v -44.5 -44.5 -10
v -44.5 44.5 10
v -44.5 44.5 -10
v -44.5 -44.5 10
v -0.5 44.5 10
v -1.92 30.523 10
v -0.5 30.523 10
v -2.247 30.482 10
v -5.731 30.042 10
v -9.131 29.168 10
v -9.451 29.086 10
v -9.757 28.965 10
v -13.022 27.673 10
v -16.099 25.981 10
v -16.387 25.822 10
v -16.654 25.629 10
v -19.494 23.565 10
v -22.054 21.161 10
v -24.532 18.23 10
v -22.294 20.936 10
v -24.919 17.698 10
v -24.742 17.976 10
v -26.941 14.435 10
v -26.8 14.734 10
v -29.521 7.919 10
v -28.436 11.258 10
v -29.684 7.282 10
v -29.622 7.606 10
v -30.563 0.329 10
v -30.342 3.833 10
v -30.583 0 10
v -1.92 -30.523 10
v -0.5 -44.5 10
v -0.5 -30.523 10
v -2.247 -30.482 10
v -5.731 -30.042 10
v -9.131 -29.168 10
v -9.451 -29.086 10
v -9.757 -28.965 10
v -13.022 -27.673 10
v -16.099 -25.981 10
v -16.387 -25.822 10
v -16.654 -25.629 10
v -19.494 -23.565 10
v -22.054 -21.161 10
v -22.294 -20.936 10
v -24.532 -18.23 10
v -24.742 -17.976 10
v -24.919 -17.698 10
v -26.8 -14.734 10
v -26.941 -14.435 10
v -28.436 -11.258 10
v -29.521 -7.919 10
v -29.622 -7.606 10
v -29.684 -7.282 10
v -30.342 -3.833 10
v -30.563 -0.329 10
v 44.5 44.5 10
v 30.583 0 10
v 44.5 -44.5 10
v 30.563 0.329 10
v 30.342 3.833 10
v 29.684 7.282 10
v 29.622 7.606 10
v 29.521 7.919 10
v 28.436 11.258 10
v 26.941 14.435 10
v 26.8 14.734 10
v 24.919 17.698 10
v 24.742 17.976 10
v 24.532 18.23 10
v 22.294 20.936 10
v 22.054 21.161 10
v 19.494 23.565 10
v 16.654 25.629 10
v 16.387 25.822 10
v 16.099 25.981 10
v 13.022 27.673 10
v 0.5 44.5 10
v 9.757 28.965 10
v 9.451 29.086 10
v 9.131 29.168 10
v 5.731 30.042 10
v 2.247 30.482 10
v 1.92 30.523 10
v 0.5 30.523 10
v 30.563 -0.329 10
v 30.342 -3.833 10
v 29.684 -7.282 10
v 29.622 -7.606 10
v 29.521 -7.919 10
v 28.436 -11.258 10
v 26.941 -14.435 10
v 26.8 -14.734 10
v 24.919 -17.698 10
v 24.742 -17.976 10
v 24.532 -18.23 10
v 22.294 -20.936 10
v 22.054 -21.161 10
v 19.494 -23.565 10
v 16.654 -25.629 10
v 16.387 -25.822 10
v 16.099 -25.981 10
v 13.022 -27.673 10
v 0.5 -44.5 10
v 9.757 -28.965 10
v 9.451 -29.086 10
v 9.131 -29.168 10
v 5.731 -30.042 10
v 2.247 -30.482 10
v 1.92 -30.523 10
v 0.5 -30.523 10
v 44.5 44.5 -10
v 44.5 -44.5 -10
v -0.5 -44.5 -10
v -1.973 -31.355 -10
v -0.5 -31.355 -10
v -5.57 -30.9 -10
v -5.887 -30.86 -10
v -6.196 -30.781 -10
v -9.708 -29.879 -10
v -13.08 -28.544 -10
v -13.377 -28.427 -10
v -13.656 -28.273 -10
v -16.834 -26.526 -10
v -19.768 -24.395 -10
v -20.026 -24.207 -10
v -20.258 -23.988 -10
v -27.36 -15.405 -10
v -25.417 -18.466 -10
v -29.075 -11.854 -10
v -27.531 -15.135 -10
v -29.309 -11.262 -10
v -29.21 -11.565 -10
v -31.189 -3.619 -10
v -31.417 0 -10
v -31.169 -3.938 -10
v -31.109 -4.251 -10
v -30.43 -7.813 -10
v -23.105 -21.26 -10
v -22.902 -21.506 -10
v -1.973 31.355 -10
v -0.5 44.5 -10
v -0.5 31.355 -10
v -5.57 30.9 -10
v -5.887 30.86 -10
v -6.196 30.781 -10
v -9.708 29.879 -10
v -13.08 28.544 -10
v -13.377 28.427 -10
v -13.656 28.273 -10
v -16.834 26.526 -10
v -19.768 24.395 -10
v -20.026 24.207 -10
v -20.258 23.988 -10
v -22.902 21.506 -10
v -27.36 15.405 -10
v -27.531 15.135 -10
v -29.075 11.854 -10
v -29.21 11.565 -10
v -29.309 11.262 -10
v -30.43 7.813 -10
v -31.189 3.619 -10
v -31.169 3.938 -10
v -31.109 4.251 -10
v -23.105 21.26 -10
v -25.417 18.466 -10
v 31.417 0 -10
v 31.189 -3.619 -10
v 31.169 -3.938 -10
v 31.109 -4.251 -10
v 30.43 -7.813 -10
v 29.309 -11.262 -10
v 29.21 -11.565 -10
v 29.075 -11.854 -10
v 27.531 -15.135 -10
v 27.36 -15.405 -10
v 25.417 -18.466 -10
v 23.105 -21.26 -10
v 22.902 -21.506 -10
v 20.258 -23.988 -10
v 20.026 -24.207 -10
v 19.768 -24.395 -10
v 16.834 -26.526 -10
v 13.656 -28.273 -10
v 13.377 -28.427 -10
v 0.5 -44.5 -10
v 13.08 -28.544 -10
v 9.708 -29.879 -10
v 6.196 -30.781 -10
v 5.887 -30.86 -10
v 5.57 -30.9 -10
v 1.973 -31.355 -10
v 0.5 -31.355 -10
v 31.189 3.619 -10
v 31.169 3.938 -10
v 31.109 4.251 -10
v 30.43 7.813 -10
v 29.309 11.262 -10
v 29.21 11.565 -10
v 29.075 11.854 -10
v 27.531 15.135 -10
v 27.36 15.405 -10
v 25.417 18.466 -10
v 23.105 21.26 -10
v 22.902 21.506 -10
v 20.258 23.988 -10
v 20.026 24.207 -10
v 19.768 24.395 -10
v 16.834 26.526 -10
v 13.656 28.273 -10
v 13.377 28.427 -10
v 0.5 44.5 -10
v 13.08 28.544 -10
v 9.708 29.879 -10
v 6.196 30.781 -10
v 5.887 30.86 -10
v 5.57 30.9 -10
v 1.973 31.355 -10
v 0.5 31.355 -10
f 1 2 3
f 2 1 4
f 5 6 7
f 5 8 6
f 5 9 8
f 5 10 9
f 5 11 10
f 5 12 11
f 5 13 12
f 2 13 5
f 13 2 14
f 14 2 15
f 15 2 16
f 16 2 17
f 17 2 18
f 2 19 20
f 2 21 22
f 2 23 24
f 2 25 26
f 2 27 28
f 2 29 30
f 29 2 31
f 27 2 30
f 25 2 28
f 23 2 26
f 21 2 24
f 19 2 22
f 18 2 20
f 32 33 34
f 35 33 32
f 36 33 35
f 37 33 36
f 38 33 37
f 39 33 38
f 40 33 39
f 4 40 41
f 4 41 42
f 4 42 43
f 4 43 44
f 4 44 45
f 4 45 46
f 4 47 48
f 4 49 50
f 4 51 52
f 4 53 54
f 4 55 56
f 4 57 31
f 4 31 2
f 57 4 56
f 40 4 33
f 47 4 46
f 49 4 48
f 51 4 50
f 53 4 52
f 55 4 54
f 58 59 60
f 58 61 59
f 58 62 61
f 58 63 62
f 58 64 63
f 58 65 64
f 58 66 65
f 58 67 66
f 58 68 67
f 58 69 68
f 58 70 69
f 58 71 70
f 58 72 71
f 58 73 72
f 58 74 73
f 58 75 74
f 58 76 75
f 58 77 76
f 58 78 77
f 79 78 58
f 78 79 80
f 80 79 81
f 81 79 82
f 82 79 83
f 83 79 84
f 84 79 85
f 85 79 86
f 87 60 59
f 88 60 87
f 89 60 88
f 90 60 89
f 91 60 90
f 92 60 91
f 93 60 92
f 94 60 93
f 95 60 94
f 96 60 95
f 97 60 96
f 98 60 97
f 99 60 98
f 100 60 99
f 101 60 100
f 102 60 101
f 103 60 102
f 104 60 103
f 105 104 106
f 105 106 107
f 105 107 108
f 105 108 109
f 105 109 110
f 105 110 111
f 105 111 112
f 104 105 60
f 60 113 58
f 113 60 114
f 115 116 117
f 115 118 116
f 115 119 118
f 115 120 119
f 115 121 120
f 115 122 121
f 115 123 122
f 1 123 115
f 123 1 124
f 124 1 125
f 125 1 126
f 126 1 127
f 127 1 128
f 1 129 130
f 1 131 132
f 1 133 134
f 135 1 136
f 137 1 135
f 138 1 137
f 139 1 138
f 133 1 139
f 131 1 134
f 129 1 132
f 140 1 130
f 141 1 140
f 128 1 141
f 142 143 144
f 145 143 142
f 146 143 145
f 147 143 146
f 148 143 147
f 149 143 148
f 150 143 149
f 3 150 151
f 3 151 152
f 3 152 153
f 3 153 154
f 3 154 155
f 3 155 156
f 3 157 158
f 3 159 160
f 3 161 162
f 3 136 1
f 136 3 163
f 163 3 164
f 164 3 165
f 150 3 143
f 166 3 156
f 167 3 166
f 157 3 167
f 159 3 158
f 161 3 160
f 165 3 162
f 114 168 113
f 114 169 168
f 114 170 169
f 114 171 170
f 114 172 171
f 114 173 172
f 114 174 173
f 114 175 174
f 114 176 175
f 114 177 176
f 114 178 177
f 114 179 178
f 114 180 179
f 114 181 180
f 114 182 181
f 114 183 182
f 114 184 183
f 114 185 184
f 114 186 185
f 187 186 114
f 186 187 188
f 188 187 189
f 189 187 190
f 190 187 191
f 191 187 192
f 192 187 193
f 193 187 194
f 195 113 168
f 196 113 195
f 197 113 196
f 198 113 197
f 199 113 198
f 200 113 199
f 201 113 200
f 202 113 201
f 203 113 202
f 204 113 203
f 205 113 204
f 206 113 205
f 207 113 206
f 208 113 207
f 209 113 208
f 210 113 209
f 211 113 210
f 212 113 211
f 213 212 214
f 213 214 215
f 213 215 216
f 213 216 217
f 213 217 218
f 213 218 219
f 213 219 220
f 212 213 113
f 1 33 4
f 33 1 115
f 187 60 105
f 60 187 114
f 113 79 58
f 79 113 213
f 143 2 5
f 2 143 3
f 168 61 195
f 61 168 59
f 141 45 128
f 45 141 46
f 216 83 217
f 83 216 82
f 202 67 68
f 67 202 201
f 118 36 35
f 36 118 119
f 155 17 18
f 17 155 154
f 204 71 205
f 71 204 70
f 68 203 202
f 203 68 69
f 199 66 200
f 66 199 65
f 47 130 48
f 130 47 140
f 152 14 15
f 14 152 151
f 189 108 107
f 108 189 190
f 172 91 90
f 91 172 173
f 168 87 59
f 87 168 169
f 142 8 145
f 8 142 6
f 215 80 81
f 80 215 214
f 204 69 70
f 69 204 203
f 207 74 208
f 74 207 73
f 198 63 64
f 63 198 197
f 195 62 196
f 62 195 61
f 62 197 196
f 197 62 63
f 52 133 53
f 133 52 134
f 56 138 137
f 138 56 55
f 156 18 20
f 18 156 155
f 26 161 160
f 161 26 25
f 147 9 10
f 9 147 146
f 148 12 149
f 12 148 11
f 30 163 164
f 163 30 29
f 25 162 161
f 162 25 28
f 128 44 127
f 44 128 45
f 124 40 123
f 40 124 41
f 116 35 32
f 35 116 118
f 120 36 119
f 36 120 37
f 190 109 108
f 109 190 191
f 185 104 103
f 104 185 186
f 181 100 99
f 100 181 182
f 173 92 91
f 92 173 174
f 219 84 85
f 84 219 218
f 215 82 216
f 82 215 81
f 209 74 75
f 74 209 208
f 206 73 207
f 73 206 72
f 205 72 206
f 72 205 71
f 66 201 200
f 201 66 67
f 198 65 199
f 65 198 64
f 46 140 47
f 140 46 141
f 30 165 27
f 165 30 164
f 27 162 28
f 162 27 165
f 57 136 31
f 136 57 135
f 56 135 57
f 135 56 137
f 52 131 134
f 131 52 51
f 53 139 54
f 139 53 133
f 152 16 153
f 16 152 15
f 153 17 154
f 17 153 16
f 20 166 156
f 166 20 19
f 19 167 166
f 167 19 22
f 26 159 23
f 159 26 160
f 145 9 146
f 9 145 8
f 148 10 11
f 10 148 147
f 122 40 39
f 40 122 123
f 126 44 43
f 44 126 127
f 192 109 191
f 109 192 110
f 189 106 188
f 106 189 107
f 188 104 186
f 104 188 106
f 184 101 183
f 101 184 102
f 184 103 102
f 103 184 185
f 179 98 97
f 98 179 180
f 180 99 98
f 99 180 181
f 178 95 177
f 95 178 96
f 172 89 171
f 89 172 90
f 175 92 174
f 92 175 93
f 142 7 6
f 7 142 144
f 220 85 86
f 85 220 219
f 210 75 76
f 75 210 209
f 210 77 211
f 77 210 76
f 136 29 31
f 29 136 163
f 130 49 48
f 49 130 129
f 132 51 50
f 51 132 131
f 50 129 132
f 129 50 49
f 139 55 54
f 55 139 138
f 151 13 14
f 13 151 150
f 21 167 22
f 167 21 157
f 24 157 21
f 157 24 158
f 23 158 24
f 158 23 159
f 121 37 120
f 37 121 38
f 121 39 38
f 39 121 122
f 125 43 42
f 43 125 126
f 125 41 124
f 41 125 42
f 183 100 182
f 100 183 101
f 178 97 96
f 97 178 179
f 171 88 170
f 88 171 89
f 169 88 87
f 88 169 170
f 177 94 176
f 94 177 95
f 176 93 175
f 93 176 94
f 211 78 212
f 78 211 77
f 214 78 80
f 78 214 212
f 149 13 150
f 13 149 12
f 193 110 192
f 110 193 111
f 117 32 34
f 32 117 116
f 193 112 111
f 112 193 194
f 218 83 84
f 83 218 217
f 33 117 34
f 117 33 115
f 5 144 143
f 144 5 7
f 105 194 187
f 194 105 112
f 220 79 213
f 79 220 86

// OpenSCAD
HEIGHT = 20;
difference(){
    cube([89,89,HEIGHT],center=true);
    cylinder(h=HEIGHT+4,r1=63/2,r2=61/2,$fn=50,center=true);
    cube([1,95,HEIGHT+4],center=true);
}
